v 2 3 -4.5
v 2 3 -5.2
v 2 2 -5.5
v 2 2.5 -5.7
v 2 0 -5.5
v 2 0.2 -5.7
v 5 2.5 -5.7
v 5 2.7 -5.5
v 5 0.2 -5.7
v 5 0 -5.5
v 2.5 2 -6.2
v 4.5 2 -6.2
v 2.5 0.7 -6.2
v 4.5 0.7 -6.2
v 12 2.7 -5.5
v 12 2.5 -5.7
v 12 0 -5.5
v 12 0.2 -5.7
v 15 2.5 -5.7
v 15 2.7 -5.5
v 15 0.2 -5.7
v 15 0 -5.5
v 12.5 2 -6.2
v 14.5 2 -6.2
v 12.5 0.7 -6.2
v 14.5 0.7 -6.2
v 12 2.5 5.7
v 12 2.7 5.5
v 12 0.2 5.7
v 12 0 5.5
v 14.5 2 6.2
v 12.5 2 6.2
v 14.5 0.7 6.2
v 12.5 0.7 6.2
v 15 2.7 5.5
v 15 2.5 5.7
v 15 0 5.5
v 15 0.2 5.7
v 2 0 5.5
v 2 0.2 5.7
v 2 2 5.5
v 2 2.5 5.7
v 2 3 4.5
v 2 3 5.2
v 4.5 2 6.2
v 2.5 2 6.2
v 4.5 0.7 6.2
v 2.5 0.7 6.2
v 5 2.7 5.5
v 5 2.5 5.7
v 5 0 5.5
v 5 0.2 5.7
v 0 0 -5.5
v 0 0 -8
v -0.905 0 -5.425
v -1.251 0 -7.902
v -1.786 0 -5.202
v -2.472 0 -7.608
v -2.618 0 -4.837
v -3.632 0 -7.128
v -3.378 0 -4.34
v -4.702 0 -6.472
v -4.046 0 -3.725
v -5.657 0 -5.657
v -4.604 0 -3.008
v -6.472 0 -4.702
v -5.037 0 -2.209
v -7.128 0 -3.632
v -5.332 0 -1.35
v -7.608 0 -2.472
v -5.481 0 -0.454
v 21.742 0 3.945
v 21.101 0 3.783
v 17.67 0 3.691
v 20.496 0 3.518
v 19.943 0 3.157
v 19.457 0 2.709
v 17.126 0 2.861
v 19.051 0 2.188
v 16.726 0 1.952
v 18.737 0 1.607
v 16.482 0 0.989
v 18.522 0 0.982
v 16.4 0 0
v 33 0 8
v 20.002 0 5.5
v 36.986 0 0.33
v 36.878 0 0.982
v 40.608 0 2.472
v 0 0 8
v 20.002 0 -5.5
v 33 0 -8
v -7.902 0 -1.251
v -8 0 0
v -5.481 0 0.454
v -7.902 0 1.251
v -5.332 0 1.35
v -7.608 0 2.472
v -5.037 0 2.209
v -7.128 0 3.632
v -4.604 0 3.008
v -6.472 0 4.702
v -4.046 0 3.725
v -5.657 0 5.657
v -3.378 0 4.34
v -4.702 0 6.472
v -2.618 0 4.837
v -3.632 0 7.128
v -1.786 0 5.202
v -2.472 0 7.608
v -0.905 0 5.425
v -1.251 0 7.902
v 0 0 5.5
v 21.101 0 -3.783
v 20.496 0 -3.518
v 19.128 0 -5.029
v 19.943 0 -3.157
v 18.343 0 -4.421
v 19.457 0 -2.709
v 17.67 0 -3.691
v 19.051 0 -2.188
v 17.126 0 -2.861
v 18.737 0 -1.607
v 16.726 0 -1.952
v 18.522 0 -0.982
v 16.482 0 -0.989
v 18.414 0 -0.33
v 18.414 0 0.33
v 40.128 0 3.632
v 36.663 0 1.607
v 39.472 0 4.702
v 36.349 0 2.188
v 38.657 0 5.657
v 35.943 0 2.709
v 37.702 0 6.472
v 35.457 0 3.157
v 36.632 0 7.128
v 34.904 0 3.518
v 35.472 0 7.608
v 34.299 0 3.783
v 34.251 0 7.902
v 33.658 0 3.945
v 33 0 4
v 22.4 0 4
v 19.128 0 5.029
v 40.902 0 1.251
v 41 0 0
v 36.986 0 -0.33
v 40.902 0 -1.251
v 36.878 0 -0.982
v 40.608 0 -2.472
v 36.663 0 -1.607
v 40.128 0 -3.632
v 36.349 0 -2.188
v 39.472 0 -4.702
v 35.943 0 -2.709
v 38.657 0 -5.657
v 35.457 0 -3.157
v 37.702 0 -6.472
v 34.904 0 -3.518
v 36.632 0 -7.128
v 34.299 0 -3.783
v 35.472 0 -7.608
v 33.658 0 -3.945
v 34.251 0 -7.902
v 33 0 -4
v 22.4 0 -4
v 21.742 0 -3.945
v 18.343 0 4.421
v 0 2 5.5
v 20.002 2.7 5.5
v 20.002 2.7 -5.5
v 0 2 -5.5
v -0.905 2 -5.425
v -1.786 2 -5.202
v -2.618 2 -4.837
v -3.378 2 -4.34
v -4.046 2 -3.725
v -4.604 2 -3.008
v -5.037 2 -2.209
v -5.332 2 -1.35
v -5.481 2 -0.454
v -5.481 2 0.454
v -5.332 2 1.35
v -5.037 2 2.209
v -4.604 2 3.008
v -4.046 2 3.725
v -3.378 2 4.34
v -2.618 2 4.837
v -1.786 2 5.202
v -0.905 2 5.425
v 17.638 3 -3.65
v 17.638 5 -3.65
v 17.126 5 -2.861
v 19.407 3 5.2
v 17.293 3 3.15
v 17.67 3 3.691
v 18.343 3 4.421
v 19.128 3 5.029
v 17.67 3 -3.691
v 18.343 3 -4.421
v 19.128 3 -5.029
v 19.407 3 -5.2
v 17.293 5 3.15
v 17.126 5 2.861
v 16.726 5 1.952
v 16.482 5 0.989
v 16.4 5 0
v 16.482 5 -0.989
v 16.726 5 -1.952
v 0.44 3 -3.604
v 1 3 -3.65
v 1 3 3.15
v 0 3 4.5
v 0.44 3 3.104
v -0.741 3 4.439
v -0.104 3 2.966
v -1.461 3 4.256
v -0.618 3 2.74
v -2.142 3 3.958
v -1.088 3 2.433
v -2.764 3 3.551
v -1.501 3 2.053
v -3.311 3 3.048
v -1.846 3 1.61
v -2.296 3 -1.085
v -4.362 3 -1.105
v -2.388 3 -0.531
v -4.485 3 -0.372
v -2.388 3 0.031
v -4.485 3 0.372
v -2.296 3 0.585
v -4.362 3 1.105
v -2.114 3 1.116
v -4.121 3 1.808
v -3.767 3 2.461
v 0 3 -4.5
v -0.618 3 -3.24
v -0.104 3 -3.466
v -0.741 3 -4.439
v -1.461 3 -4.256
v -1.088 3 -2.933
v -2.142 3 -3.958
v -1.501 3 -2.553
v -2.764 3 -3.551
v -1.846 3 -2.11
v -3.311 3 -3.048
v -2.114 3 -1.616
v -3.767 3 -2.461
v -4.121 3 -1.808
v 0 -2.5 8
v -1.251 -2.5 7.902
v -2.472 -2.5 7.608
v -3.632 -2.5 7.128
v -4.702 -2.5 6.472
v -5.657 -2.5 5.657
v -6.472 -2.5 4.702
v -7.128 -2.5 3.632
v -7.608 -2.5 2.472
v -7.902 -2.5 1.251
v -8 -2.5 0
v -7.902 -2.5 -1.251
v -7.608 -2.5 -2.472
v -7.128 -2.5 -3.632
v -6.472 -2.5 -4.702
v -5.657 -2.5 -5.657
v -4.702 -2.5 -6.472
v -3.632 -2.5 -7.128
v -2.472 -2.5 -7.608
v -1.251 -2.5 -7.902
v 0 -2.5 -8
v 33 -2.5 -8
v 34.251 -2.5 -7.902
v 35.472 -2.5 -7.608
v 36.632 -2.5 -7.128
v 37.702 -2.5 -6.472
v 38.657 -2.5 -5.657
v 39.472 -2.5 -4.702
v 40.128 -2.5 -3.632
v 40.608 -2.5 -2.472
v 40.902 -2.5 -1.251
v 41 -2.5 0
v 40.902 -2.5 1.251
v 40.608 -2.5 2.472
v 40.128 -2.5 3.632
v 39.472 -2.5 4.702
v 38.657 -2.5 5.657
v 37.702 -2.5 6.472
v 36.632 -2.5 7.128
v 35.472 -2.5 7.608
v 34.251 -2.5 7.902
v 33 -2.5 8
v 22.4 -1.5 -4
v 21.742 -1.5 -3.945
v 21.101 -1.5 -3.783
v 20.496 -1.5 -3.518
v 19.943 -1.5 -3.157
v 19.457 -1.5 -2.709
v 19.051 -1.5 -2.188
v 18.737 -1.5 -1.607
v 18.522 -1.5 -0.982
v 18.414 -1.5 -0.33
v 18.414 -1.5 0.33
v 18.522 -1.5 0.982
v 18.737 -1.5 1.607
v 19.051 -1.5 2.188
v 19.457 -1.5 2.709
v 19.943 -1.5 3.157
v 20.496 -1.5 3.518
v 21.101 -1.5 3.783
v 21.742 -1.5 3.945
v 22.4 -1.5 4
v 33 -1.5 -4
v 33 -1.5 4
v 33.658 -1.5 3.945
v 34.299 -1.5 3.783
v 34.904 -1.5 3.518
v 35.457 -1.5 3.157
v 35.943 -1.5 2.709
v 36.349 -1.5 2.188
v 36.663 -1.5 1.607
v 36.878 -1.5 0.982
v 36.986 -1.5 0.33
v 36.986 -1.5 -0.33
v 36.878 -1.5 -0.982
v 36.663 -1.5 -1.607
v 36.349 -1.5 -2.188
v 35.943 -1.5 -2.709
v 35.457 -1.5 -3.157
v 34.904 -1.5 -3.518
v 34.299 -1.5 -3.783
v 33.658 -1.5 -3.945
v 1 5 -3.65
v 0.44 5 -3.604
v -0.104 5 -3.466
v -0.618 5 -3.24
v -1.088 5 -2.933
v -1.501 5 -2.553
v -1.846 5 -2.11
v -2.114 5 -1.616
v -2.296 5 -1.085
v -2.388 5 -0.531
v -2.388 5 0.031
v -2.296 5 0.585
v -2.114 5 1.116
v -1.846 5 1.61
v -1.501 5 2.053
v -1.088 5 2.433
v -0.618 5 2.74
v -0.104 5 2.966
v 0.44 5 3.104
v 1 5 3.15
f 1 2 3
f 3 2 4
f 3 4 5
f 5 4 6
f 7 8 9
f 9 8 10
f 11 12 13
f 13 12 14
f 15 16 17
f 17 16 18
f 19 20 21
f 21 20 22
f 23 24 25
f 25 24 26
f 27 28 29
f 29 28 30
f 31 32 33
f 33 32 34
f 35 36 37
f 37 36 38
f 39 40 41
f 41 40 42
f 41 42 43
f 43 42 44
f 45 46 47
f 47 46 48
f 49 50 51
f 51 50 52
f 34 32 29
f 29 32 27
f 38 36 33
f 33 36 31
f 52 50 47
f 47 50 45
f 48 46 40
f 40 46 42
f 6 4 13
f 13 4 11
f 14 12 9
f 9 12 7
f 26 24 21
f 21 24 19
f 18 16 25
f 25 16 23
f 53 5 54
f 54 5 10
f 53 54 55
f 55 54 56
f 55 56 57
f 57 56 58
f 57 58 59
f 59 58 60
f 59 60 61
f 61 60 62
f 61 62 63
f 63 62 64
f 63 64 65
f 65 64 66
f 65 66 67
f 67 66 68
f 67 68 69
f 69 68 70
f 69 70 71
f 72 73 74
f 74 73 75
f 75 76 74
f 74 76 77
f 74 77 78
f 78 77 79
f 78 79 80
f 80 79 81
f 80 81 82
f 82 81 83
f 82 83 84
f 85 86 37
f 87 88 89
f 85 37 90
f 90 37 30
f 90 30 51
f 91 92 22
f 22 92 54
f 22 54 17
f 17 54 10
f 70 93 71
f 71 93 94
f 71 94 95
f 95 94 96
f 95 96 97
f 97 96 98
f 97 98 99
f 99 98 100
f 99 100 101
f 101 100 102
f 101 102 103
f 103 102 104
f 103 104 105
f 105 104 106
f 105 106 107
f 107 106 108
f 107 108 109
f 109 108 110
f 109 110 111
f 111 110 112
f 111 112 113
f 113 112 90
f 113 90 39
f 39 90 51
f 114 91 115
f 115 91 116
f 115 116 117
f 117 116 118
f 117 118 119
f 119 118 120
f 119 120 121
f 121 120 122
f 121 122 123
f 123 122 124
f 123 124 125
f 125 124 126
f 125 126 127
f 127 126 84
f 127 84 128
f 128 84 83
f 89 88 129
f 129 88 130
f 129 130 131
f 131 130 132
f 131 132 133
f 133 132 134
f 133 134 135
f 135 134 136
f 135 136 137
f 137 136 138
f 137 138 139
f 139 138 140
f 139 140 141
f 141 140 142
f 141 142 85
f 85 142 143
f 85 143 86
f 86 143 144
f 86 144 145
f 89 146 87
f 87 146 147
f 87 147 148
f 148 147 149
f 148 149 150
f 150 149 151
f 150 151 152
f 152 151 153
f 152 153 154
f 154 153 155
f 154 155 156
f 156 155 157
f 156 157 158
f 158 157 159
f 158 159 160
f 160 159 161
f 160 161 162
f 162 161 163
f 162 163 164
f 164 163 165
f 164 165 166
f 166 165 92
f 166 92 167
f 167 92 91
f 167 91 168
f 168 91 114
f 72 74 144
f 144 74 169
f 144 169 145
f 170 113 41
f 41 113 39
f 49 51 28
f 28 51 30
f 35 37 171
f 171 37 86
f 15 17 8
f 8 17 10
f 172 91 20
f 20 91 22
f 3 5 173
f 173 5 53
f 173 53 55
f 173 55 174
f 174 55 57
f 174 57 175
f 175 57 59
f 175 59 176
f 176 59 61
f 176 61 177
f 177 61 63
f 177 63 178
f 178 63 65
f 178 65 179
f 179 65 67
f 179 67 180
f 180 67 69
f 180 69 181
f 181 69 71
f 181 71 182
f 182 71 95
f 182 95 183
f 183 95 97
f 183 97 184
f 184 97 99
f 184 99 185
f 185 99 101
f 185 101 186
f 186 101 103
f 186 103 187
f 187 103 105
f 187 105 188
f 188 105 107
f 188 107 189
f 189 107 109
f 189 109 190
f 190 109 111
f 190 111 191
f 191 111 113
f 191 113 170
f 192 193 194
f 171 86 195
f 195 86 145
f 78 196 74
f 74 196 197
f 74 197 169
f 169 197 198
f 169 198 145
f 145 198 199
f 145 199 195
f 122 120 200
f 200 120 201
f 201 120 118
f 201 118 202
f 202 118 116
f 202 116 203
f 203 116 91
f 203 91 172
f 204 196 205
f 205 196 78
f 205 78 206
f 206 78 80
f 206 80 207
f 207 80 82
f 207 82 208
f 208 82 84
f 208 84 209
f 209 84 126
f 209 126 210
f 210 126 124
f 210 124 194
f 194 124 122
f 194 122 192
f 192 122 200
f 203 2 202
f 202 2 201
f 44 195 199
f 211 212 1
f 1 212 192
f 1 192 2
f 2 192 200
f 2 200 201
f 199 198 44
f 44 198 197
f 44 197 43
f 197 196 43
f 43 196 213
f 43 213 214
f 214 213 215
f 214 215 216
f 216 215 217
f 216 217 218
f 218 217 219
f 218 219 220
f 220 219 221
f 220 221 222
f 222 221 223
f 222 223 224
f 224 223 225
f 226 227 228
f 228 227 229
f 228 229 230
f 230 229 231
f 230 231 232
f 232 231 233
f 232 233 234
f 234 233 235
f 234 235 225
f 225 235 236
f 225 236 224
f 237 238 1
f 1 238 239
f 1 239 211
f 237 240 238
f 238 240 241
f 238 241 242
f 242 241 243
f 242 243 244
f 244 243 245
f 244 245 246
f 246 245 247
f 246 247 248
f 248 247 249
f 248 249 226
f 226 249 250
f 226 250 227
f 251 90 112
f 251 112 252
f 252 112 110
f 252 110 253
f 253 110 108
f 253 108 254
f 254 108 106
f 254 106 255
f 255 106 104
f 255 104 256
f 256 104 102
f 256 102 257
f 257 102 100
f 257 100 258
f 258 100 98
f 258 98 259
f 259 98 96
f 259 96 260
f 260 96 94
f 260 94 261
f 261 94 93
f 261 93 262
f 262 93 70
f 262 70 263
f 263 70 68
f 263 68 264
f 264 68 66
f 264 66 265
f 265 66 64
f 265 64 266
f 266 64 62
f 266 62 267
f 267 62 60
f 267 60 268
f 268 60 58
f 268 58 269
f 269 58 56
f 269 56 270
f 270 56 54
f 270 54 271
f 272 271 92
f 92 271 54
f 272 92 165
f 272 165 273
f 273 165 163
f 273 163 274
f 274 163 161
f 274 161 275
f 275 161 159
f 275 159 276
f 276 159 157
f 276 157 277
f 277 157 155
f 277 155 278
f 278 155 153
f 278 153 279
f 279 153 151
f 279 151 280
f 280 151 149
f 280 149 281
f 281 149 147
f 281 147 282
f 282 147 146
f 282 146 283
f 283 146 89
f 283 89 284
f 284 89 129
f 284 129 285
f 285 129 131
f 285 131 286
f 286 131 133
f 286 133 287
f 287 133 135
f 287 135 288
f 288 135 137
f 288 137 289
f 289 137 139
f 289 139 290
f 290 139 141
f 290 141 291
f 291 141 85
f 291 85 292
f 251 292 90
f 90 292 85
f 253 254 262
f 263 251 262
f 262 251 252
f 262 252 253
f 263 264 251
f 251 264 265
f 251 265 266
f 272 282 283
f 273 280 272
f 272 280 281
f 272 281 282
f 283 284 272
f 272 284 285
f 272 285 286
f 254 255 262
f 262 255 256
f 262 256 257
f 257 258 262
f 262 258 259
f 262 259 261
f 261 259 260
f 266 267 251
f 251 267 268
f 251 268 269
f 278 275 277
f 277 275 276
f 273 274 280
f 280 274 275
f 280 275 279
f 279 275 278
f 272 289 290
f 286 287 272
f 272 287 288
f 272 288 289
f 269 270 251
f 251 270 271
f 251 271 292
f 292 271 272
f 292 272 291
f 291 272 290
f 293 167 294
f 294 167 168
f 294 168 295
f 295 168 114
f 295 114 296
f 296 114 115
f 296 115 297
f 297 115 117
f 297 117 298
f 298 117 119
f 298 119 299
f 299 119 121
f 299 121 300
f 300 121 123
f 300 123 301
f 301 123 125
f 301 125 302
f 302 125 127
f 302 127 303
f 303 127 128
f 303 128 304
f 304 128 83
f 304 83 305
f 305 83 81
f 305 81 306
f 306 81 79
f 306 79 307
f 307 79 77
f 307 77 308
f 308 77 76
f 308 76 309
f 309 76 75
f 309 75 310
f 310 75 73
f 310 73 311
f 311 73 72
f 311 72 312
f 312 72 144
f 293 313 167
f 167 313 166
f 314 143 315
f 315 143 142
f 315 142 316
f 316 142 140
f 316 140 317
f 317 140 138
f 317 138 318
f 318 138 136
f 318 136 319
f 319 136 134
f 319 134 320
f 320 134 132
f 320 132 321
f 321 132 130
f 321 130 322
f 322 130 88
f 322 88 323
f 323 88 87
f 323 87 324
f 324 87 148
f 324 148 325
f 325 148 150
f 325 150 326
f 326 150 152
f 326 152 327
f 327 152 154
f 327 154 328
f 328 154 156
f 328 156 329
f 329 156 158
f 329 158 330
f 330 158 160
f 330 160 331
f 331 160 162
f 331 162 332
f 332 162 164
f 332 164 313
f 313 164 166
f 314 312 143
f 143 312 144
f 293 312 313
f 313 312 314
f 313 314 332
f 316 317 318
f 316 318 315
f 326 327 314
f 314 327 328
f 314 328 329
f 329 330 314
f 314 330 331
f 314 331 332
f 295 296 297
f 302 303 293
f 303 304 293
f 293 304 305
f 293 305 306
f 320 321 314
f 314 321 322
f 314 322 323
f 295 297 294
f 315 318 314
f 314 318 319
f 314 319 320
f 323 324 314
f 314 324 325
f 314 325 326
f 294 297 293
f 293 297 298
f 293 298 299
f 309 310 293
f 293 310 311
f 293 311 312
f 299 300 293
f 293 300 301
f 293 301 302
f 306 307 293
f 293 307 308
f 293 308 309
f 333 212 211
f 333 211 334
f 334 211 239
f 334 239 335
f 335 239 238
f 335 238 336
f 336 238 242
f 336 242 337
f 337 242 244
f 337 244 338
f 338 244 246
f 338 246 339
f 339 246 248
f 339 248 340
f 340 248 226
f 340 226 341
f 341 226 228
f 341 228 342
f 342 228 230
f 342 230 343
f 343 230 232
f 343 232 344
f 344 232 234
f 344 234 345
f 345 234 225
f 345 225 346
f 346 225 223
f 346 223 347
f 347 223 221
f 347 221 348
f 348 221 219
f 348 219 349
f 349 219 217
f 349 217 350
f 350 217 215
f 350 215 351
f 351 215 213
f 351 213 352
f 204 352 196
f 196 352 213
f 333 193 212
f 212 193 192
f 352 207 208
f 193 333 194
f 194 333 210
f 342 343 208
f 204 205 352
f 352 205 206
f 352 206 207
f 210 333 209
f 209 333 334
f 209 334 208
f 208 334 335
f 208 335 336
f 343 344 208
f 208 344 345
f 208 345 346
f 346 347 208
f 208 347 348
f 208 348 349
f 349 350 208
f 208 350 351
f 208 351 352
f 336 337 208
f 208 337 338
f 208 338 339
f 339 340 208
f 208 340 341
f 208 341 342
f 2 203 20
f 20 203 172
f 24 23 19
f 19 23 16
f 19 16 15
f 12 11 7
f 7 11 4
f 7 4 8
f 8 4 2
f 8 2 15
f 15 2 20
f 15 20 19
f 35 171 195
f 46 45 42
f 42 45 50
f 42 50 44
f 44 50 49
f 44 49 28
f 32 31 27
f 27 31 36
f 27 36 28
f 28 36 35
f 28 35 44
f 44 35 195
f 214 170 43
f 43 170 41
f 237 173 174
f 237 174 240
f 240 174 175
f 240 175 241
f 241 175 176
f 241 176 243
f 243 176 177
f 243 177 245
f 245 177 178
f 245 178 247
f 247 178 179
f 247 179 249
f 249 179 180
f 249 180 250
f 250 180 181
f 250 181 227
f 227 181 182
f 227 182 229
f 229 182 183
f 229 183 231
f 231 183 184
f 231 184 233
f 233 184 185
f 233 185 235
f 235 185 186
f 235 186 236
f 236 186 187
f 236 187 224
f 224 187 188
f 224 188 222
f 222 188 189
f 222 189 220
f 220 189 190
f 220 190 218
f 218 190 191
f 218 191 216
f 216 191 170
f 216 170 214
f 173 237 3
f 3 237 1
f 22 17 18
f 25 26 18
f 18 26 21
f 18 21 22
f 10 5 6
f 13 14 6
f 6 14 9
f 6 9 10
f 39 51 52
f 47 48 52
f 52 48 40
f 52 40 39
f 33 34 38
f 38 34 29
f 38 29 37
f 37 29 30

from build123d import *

# Parameters (mm, degrees)
EXTRUDE_1_DEPTH          = 3
EXTRUDE_2_DEPTH          = 2.5
CUT_EXTRUDE_1_DEPTH      = 1.5
EXTRUDE_3_DEPTH          = 2
SKETCH_5_W               = 3
SKETCH_5_H               = 0.7
EXTRUDE_4_DEPTH          = 3
CHAMFER_1_SIZE           = 1
CHAMFER_START            = -5.499796234
CHAMFER_2_DEPTH          = 7.499796234
CHAMFER_2_2_ANGLE        = 180
CHAMFER_3_SIZE           = 0.5
CUT_EXTRUDE_2_DEPTH      = 43.071367936
CUT_EXTRUDE_2_DEPTH_BACK = 43.071367936


with BuildPart() as part:
    # 草图1 → 凸台-拉伸1 (new body)
    with BuildSketch(Plane(origin=(0, 0, 0), x_dir=(1, 0, 0), z_dir=(0, 1, 0))):
        with BuildLine():
            Line((0, 5.5), (20.002084238, 5.5))
            ThreePointArc((20.002084238, 5.5), (16.4, 0), (20.002084238, -5.5))
            Line((20.002084238, -5.5), (0, -5.5))
            ThreePointArc((0, -5.5), (-5.5, 0), (0, 5.5))
        make_face()
    extrude(amount=EXTRUDE_1_DEPTH)

    # 草图2 → 凸台-拉伸2 (add)
    with BuildSketch(Plane.XZ):
        with BuildLine():
            Line((0, 8), (33, 8))
            ThreePointArc((33, 8), (41, 0), (33, -8))
            Line((33, -8), (0, -8))
            ThreePointArc((0, -8), (-8, 0), (0, 8))
        make_face()
    extrude(amount=EXTRUDE_2_DEPTH)

    # 草图3 → 切除-拉伸1 (cut)
    with BuildSketch(Plane(origin=(0, 0, 0), x_dir=(1, 0, 0), z_dir=(0, 1, 0))):
        with BuildLine():
            Line((22.4, 4), (33, 4))
            ThreePointArc((33, 4), (37, 0), (33, -4))
            Line((33, -4), (22.4, -4))
            ThreePointArc((22.4, -4), (18.4, 0), (22.4, 4))
        make_face()
    extrude(amount=-CUT_EXTRUDE_1_DEPTH, mode=Mode.SUBTRACT)

    # 草图4 → 凸台-拉伸3 (add)
    with BuildSketch(Plane(origin=(0, 3, 0), x_dir=(1, 0, 0), z_dir=(0, 1, 0))):
        with BuildLine():
            Line((1, 3.65), (17.637910123, 3.65))
            ThreePointArc((17.637910123, 3.65), (16.407686099, 0.30360189), (17.293386641, -3.15))
            Line((17.293386641, -3.15), (1, -3.15))
            ThreePointArc((1, -3.15), (-2.4, 0.25), (1, 3.65))
        make_face()
    extrude(amount=EXTRUDE_3_DEPTH)

    # 草图5 → 凸台-拉伸4 (add)
    with BuildSketch(Plane(origin=(0, 0, 0), x_dir=(1, 0, 0), z_dir=(0, 1, 0))):
        with Locations((3.5, 5.85)):
            Rectangle(SKETCH_5_W, SKETCH_5_H)
        with Locations((13.5, 5.85)):
            Rectangle(SKETCH_5_W, SKETCH_5_H)
        with Locations((13.5, -5.85)):
            Rectangle(SKETCH_5_W, SKETCH_5_H)
        with Locations((3.5, -5.85)):
            Rectangle(SKETCH_5_W, SKETCH_5_H)
    extrude(amount=EXTRUDE_4_DEPTH)

    # 倒角1
    chamfer_1_edges = [part.edges().sort_by_distance(p)[0] for p in [
        (3.5, 3, -6.2),
        (3.5, 3, 6.2),
    ]]
    chamfer(chamfer_1_edges, length=CHAMFER_1_SIZE)

    # 倒角2: read off the stored shape, not the designer's step
    # 倒角2 outline → 倒角2 (cut)
    with BuildSketch(Plane.YZ.offset(CHAMFER_START)):
        Polygon((3, -5.2), (3, -4.5), (2, -5.5), (2.7, -5.5), align=None)
        Polygon((2, 5.5), (3, 4.5), (3, 5.2), (2.7, 5.5), align=None)
    extrude(amount=CHAMFER_2_DEPTH, mode=Mode.SUBTRACT)

    # Chamfer 2 2 outline → Chamfer 2 2 (revolve, cut)
    with BuildSketch(Plane(origin=(0, 0, 0), x_dir=(0, 0, -1), z_dir=(1, 0, 0))):
        Polygon((5.5, 3), (4.5, 3), (5.5, 2), align=None)
    revolve(axis=Axis((0, 0, 0), (0, 1, 0)), revolution_arc=CHAMFER_2_2_ANGLE, mode=Mode.SUBTRACT)

    # 倒角3
    chamfer_3_edges = [part.edges().sort_by_distance(p)[0] for p in [
        (2, 1, -6.2),
        (5, 1, -6.2),
        (12, 1, -6.2),
        (15, 1, -6.2),
        (15, 1, 6.2),
        (12, 1, 6.2),
        (5, 1, 6.2),
        (2, 1, 6.2),
    ]]
    chamfer(chamfer_3_edges, length=CHAMFER_3_SIZE)

    # 草图6 → 切除-拉伸2 (cut, two sides: drawn at the far end of the back side and taken through both)
    with BuildSketch(Plane(origin=(0, 0, 0), x_dir=(0, 0, -1), z_dir=(1, 0, 0)).offset(-CUT_EXTRUDE_2_DEPTH_BACK)):
        Polygon((-5.5, 0), (-6.2, 0.7), (-6.2, 0), align=None)
        Polygon((5.5, 0), (6.2, 0), (6.2, 0.7), align=None)
    extrude(amount=CUT_EXTRUDE_2_DEPTH + CUT_EXTRUDE_2_DEPTH_BACK, mode=Mode.SUBTRACT)


solid = part.part
